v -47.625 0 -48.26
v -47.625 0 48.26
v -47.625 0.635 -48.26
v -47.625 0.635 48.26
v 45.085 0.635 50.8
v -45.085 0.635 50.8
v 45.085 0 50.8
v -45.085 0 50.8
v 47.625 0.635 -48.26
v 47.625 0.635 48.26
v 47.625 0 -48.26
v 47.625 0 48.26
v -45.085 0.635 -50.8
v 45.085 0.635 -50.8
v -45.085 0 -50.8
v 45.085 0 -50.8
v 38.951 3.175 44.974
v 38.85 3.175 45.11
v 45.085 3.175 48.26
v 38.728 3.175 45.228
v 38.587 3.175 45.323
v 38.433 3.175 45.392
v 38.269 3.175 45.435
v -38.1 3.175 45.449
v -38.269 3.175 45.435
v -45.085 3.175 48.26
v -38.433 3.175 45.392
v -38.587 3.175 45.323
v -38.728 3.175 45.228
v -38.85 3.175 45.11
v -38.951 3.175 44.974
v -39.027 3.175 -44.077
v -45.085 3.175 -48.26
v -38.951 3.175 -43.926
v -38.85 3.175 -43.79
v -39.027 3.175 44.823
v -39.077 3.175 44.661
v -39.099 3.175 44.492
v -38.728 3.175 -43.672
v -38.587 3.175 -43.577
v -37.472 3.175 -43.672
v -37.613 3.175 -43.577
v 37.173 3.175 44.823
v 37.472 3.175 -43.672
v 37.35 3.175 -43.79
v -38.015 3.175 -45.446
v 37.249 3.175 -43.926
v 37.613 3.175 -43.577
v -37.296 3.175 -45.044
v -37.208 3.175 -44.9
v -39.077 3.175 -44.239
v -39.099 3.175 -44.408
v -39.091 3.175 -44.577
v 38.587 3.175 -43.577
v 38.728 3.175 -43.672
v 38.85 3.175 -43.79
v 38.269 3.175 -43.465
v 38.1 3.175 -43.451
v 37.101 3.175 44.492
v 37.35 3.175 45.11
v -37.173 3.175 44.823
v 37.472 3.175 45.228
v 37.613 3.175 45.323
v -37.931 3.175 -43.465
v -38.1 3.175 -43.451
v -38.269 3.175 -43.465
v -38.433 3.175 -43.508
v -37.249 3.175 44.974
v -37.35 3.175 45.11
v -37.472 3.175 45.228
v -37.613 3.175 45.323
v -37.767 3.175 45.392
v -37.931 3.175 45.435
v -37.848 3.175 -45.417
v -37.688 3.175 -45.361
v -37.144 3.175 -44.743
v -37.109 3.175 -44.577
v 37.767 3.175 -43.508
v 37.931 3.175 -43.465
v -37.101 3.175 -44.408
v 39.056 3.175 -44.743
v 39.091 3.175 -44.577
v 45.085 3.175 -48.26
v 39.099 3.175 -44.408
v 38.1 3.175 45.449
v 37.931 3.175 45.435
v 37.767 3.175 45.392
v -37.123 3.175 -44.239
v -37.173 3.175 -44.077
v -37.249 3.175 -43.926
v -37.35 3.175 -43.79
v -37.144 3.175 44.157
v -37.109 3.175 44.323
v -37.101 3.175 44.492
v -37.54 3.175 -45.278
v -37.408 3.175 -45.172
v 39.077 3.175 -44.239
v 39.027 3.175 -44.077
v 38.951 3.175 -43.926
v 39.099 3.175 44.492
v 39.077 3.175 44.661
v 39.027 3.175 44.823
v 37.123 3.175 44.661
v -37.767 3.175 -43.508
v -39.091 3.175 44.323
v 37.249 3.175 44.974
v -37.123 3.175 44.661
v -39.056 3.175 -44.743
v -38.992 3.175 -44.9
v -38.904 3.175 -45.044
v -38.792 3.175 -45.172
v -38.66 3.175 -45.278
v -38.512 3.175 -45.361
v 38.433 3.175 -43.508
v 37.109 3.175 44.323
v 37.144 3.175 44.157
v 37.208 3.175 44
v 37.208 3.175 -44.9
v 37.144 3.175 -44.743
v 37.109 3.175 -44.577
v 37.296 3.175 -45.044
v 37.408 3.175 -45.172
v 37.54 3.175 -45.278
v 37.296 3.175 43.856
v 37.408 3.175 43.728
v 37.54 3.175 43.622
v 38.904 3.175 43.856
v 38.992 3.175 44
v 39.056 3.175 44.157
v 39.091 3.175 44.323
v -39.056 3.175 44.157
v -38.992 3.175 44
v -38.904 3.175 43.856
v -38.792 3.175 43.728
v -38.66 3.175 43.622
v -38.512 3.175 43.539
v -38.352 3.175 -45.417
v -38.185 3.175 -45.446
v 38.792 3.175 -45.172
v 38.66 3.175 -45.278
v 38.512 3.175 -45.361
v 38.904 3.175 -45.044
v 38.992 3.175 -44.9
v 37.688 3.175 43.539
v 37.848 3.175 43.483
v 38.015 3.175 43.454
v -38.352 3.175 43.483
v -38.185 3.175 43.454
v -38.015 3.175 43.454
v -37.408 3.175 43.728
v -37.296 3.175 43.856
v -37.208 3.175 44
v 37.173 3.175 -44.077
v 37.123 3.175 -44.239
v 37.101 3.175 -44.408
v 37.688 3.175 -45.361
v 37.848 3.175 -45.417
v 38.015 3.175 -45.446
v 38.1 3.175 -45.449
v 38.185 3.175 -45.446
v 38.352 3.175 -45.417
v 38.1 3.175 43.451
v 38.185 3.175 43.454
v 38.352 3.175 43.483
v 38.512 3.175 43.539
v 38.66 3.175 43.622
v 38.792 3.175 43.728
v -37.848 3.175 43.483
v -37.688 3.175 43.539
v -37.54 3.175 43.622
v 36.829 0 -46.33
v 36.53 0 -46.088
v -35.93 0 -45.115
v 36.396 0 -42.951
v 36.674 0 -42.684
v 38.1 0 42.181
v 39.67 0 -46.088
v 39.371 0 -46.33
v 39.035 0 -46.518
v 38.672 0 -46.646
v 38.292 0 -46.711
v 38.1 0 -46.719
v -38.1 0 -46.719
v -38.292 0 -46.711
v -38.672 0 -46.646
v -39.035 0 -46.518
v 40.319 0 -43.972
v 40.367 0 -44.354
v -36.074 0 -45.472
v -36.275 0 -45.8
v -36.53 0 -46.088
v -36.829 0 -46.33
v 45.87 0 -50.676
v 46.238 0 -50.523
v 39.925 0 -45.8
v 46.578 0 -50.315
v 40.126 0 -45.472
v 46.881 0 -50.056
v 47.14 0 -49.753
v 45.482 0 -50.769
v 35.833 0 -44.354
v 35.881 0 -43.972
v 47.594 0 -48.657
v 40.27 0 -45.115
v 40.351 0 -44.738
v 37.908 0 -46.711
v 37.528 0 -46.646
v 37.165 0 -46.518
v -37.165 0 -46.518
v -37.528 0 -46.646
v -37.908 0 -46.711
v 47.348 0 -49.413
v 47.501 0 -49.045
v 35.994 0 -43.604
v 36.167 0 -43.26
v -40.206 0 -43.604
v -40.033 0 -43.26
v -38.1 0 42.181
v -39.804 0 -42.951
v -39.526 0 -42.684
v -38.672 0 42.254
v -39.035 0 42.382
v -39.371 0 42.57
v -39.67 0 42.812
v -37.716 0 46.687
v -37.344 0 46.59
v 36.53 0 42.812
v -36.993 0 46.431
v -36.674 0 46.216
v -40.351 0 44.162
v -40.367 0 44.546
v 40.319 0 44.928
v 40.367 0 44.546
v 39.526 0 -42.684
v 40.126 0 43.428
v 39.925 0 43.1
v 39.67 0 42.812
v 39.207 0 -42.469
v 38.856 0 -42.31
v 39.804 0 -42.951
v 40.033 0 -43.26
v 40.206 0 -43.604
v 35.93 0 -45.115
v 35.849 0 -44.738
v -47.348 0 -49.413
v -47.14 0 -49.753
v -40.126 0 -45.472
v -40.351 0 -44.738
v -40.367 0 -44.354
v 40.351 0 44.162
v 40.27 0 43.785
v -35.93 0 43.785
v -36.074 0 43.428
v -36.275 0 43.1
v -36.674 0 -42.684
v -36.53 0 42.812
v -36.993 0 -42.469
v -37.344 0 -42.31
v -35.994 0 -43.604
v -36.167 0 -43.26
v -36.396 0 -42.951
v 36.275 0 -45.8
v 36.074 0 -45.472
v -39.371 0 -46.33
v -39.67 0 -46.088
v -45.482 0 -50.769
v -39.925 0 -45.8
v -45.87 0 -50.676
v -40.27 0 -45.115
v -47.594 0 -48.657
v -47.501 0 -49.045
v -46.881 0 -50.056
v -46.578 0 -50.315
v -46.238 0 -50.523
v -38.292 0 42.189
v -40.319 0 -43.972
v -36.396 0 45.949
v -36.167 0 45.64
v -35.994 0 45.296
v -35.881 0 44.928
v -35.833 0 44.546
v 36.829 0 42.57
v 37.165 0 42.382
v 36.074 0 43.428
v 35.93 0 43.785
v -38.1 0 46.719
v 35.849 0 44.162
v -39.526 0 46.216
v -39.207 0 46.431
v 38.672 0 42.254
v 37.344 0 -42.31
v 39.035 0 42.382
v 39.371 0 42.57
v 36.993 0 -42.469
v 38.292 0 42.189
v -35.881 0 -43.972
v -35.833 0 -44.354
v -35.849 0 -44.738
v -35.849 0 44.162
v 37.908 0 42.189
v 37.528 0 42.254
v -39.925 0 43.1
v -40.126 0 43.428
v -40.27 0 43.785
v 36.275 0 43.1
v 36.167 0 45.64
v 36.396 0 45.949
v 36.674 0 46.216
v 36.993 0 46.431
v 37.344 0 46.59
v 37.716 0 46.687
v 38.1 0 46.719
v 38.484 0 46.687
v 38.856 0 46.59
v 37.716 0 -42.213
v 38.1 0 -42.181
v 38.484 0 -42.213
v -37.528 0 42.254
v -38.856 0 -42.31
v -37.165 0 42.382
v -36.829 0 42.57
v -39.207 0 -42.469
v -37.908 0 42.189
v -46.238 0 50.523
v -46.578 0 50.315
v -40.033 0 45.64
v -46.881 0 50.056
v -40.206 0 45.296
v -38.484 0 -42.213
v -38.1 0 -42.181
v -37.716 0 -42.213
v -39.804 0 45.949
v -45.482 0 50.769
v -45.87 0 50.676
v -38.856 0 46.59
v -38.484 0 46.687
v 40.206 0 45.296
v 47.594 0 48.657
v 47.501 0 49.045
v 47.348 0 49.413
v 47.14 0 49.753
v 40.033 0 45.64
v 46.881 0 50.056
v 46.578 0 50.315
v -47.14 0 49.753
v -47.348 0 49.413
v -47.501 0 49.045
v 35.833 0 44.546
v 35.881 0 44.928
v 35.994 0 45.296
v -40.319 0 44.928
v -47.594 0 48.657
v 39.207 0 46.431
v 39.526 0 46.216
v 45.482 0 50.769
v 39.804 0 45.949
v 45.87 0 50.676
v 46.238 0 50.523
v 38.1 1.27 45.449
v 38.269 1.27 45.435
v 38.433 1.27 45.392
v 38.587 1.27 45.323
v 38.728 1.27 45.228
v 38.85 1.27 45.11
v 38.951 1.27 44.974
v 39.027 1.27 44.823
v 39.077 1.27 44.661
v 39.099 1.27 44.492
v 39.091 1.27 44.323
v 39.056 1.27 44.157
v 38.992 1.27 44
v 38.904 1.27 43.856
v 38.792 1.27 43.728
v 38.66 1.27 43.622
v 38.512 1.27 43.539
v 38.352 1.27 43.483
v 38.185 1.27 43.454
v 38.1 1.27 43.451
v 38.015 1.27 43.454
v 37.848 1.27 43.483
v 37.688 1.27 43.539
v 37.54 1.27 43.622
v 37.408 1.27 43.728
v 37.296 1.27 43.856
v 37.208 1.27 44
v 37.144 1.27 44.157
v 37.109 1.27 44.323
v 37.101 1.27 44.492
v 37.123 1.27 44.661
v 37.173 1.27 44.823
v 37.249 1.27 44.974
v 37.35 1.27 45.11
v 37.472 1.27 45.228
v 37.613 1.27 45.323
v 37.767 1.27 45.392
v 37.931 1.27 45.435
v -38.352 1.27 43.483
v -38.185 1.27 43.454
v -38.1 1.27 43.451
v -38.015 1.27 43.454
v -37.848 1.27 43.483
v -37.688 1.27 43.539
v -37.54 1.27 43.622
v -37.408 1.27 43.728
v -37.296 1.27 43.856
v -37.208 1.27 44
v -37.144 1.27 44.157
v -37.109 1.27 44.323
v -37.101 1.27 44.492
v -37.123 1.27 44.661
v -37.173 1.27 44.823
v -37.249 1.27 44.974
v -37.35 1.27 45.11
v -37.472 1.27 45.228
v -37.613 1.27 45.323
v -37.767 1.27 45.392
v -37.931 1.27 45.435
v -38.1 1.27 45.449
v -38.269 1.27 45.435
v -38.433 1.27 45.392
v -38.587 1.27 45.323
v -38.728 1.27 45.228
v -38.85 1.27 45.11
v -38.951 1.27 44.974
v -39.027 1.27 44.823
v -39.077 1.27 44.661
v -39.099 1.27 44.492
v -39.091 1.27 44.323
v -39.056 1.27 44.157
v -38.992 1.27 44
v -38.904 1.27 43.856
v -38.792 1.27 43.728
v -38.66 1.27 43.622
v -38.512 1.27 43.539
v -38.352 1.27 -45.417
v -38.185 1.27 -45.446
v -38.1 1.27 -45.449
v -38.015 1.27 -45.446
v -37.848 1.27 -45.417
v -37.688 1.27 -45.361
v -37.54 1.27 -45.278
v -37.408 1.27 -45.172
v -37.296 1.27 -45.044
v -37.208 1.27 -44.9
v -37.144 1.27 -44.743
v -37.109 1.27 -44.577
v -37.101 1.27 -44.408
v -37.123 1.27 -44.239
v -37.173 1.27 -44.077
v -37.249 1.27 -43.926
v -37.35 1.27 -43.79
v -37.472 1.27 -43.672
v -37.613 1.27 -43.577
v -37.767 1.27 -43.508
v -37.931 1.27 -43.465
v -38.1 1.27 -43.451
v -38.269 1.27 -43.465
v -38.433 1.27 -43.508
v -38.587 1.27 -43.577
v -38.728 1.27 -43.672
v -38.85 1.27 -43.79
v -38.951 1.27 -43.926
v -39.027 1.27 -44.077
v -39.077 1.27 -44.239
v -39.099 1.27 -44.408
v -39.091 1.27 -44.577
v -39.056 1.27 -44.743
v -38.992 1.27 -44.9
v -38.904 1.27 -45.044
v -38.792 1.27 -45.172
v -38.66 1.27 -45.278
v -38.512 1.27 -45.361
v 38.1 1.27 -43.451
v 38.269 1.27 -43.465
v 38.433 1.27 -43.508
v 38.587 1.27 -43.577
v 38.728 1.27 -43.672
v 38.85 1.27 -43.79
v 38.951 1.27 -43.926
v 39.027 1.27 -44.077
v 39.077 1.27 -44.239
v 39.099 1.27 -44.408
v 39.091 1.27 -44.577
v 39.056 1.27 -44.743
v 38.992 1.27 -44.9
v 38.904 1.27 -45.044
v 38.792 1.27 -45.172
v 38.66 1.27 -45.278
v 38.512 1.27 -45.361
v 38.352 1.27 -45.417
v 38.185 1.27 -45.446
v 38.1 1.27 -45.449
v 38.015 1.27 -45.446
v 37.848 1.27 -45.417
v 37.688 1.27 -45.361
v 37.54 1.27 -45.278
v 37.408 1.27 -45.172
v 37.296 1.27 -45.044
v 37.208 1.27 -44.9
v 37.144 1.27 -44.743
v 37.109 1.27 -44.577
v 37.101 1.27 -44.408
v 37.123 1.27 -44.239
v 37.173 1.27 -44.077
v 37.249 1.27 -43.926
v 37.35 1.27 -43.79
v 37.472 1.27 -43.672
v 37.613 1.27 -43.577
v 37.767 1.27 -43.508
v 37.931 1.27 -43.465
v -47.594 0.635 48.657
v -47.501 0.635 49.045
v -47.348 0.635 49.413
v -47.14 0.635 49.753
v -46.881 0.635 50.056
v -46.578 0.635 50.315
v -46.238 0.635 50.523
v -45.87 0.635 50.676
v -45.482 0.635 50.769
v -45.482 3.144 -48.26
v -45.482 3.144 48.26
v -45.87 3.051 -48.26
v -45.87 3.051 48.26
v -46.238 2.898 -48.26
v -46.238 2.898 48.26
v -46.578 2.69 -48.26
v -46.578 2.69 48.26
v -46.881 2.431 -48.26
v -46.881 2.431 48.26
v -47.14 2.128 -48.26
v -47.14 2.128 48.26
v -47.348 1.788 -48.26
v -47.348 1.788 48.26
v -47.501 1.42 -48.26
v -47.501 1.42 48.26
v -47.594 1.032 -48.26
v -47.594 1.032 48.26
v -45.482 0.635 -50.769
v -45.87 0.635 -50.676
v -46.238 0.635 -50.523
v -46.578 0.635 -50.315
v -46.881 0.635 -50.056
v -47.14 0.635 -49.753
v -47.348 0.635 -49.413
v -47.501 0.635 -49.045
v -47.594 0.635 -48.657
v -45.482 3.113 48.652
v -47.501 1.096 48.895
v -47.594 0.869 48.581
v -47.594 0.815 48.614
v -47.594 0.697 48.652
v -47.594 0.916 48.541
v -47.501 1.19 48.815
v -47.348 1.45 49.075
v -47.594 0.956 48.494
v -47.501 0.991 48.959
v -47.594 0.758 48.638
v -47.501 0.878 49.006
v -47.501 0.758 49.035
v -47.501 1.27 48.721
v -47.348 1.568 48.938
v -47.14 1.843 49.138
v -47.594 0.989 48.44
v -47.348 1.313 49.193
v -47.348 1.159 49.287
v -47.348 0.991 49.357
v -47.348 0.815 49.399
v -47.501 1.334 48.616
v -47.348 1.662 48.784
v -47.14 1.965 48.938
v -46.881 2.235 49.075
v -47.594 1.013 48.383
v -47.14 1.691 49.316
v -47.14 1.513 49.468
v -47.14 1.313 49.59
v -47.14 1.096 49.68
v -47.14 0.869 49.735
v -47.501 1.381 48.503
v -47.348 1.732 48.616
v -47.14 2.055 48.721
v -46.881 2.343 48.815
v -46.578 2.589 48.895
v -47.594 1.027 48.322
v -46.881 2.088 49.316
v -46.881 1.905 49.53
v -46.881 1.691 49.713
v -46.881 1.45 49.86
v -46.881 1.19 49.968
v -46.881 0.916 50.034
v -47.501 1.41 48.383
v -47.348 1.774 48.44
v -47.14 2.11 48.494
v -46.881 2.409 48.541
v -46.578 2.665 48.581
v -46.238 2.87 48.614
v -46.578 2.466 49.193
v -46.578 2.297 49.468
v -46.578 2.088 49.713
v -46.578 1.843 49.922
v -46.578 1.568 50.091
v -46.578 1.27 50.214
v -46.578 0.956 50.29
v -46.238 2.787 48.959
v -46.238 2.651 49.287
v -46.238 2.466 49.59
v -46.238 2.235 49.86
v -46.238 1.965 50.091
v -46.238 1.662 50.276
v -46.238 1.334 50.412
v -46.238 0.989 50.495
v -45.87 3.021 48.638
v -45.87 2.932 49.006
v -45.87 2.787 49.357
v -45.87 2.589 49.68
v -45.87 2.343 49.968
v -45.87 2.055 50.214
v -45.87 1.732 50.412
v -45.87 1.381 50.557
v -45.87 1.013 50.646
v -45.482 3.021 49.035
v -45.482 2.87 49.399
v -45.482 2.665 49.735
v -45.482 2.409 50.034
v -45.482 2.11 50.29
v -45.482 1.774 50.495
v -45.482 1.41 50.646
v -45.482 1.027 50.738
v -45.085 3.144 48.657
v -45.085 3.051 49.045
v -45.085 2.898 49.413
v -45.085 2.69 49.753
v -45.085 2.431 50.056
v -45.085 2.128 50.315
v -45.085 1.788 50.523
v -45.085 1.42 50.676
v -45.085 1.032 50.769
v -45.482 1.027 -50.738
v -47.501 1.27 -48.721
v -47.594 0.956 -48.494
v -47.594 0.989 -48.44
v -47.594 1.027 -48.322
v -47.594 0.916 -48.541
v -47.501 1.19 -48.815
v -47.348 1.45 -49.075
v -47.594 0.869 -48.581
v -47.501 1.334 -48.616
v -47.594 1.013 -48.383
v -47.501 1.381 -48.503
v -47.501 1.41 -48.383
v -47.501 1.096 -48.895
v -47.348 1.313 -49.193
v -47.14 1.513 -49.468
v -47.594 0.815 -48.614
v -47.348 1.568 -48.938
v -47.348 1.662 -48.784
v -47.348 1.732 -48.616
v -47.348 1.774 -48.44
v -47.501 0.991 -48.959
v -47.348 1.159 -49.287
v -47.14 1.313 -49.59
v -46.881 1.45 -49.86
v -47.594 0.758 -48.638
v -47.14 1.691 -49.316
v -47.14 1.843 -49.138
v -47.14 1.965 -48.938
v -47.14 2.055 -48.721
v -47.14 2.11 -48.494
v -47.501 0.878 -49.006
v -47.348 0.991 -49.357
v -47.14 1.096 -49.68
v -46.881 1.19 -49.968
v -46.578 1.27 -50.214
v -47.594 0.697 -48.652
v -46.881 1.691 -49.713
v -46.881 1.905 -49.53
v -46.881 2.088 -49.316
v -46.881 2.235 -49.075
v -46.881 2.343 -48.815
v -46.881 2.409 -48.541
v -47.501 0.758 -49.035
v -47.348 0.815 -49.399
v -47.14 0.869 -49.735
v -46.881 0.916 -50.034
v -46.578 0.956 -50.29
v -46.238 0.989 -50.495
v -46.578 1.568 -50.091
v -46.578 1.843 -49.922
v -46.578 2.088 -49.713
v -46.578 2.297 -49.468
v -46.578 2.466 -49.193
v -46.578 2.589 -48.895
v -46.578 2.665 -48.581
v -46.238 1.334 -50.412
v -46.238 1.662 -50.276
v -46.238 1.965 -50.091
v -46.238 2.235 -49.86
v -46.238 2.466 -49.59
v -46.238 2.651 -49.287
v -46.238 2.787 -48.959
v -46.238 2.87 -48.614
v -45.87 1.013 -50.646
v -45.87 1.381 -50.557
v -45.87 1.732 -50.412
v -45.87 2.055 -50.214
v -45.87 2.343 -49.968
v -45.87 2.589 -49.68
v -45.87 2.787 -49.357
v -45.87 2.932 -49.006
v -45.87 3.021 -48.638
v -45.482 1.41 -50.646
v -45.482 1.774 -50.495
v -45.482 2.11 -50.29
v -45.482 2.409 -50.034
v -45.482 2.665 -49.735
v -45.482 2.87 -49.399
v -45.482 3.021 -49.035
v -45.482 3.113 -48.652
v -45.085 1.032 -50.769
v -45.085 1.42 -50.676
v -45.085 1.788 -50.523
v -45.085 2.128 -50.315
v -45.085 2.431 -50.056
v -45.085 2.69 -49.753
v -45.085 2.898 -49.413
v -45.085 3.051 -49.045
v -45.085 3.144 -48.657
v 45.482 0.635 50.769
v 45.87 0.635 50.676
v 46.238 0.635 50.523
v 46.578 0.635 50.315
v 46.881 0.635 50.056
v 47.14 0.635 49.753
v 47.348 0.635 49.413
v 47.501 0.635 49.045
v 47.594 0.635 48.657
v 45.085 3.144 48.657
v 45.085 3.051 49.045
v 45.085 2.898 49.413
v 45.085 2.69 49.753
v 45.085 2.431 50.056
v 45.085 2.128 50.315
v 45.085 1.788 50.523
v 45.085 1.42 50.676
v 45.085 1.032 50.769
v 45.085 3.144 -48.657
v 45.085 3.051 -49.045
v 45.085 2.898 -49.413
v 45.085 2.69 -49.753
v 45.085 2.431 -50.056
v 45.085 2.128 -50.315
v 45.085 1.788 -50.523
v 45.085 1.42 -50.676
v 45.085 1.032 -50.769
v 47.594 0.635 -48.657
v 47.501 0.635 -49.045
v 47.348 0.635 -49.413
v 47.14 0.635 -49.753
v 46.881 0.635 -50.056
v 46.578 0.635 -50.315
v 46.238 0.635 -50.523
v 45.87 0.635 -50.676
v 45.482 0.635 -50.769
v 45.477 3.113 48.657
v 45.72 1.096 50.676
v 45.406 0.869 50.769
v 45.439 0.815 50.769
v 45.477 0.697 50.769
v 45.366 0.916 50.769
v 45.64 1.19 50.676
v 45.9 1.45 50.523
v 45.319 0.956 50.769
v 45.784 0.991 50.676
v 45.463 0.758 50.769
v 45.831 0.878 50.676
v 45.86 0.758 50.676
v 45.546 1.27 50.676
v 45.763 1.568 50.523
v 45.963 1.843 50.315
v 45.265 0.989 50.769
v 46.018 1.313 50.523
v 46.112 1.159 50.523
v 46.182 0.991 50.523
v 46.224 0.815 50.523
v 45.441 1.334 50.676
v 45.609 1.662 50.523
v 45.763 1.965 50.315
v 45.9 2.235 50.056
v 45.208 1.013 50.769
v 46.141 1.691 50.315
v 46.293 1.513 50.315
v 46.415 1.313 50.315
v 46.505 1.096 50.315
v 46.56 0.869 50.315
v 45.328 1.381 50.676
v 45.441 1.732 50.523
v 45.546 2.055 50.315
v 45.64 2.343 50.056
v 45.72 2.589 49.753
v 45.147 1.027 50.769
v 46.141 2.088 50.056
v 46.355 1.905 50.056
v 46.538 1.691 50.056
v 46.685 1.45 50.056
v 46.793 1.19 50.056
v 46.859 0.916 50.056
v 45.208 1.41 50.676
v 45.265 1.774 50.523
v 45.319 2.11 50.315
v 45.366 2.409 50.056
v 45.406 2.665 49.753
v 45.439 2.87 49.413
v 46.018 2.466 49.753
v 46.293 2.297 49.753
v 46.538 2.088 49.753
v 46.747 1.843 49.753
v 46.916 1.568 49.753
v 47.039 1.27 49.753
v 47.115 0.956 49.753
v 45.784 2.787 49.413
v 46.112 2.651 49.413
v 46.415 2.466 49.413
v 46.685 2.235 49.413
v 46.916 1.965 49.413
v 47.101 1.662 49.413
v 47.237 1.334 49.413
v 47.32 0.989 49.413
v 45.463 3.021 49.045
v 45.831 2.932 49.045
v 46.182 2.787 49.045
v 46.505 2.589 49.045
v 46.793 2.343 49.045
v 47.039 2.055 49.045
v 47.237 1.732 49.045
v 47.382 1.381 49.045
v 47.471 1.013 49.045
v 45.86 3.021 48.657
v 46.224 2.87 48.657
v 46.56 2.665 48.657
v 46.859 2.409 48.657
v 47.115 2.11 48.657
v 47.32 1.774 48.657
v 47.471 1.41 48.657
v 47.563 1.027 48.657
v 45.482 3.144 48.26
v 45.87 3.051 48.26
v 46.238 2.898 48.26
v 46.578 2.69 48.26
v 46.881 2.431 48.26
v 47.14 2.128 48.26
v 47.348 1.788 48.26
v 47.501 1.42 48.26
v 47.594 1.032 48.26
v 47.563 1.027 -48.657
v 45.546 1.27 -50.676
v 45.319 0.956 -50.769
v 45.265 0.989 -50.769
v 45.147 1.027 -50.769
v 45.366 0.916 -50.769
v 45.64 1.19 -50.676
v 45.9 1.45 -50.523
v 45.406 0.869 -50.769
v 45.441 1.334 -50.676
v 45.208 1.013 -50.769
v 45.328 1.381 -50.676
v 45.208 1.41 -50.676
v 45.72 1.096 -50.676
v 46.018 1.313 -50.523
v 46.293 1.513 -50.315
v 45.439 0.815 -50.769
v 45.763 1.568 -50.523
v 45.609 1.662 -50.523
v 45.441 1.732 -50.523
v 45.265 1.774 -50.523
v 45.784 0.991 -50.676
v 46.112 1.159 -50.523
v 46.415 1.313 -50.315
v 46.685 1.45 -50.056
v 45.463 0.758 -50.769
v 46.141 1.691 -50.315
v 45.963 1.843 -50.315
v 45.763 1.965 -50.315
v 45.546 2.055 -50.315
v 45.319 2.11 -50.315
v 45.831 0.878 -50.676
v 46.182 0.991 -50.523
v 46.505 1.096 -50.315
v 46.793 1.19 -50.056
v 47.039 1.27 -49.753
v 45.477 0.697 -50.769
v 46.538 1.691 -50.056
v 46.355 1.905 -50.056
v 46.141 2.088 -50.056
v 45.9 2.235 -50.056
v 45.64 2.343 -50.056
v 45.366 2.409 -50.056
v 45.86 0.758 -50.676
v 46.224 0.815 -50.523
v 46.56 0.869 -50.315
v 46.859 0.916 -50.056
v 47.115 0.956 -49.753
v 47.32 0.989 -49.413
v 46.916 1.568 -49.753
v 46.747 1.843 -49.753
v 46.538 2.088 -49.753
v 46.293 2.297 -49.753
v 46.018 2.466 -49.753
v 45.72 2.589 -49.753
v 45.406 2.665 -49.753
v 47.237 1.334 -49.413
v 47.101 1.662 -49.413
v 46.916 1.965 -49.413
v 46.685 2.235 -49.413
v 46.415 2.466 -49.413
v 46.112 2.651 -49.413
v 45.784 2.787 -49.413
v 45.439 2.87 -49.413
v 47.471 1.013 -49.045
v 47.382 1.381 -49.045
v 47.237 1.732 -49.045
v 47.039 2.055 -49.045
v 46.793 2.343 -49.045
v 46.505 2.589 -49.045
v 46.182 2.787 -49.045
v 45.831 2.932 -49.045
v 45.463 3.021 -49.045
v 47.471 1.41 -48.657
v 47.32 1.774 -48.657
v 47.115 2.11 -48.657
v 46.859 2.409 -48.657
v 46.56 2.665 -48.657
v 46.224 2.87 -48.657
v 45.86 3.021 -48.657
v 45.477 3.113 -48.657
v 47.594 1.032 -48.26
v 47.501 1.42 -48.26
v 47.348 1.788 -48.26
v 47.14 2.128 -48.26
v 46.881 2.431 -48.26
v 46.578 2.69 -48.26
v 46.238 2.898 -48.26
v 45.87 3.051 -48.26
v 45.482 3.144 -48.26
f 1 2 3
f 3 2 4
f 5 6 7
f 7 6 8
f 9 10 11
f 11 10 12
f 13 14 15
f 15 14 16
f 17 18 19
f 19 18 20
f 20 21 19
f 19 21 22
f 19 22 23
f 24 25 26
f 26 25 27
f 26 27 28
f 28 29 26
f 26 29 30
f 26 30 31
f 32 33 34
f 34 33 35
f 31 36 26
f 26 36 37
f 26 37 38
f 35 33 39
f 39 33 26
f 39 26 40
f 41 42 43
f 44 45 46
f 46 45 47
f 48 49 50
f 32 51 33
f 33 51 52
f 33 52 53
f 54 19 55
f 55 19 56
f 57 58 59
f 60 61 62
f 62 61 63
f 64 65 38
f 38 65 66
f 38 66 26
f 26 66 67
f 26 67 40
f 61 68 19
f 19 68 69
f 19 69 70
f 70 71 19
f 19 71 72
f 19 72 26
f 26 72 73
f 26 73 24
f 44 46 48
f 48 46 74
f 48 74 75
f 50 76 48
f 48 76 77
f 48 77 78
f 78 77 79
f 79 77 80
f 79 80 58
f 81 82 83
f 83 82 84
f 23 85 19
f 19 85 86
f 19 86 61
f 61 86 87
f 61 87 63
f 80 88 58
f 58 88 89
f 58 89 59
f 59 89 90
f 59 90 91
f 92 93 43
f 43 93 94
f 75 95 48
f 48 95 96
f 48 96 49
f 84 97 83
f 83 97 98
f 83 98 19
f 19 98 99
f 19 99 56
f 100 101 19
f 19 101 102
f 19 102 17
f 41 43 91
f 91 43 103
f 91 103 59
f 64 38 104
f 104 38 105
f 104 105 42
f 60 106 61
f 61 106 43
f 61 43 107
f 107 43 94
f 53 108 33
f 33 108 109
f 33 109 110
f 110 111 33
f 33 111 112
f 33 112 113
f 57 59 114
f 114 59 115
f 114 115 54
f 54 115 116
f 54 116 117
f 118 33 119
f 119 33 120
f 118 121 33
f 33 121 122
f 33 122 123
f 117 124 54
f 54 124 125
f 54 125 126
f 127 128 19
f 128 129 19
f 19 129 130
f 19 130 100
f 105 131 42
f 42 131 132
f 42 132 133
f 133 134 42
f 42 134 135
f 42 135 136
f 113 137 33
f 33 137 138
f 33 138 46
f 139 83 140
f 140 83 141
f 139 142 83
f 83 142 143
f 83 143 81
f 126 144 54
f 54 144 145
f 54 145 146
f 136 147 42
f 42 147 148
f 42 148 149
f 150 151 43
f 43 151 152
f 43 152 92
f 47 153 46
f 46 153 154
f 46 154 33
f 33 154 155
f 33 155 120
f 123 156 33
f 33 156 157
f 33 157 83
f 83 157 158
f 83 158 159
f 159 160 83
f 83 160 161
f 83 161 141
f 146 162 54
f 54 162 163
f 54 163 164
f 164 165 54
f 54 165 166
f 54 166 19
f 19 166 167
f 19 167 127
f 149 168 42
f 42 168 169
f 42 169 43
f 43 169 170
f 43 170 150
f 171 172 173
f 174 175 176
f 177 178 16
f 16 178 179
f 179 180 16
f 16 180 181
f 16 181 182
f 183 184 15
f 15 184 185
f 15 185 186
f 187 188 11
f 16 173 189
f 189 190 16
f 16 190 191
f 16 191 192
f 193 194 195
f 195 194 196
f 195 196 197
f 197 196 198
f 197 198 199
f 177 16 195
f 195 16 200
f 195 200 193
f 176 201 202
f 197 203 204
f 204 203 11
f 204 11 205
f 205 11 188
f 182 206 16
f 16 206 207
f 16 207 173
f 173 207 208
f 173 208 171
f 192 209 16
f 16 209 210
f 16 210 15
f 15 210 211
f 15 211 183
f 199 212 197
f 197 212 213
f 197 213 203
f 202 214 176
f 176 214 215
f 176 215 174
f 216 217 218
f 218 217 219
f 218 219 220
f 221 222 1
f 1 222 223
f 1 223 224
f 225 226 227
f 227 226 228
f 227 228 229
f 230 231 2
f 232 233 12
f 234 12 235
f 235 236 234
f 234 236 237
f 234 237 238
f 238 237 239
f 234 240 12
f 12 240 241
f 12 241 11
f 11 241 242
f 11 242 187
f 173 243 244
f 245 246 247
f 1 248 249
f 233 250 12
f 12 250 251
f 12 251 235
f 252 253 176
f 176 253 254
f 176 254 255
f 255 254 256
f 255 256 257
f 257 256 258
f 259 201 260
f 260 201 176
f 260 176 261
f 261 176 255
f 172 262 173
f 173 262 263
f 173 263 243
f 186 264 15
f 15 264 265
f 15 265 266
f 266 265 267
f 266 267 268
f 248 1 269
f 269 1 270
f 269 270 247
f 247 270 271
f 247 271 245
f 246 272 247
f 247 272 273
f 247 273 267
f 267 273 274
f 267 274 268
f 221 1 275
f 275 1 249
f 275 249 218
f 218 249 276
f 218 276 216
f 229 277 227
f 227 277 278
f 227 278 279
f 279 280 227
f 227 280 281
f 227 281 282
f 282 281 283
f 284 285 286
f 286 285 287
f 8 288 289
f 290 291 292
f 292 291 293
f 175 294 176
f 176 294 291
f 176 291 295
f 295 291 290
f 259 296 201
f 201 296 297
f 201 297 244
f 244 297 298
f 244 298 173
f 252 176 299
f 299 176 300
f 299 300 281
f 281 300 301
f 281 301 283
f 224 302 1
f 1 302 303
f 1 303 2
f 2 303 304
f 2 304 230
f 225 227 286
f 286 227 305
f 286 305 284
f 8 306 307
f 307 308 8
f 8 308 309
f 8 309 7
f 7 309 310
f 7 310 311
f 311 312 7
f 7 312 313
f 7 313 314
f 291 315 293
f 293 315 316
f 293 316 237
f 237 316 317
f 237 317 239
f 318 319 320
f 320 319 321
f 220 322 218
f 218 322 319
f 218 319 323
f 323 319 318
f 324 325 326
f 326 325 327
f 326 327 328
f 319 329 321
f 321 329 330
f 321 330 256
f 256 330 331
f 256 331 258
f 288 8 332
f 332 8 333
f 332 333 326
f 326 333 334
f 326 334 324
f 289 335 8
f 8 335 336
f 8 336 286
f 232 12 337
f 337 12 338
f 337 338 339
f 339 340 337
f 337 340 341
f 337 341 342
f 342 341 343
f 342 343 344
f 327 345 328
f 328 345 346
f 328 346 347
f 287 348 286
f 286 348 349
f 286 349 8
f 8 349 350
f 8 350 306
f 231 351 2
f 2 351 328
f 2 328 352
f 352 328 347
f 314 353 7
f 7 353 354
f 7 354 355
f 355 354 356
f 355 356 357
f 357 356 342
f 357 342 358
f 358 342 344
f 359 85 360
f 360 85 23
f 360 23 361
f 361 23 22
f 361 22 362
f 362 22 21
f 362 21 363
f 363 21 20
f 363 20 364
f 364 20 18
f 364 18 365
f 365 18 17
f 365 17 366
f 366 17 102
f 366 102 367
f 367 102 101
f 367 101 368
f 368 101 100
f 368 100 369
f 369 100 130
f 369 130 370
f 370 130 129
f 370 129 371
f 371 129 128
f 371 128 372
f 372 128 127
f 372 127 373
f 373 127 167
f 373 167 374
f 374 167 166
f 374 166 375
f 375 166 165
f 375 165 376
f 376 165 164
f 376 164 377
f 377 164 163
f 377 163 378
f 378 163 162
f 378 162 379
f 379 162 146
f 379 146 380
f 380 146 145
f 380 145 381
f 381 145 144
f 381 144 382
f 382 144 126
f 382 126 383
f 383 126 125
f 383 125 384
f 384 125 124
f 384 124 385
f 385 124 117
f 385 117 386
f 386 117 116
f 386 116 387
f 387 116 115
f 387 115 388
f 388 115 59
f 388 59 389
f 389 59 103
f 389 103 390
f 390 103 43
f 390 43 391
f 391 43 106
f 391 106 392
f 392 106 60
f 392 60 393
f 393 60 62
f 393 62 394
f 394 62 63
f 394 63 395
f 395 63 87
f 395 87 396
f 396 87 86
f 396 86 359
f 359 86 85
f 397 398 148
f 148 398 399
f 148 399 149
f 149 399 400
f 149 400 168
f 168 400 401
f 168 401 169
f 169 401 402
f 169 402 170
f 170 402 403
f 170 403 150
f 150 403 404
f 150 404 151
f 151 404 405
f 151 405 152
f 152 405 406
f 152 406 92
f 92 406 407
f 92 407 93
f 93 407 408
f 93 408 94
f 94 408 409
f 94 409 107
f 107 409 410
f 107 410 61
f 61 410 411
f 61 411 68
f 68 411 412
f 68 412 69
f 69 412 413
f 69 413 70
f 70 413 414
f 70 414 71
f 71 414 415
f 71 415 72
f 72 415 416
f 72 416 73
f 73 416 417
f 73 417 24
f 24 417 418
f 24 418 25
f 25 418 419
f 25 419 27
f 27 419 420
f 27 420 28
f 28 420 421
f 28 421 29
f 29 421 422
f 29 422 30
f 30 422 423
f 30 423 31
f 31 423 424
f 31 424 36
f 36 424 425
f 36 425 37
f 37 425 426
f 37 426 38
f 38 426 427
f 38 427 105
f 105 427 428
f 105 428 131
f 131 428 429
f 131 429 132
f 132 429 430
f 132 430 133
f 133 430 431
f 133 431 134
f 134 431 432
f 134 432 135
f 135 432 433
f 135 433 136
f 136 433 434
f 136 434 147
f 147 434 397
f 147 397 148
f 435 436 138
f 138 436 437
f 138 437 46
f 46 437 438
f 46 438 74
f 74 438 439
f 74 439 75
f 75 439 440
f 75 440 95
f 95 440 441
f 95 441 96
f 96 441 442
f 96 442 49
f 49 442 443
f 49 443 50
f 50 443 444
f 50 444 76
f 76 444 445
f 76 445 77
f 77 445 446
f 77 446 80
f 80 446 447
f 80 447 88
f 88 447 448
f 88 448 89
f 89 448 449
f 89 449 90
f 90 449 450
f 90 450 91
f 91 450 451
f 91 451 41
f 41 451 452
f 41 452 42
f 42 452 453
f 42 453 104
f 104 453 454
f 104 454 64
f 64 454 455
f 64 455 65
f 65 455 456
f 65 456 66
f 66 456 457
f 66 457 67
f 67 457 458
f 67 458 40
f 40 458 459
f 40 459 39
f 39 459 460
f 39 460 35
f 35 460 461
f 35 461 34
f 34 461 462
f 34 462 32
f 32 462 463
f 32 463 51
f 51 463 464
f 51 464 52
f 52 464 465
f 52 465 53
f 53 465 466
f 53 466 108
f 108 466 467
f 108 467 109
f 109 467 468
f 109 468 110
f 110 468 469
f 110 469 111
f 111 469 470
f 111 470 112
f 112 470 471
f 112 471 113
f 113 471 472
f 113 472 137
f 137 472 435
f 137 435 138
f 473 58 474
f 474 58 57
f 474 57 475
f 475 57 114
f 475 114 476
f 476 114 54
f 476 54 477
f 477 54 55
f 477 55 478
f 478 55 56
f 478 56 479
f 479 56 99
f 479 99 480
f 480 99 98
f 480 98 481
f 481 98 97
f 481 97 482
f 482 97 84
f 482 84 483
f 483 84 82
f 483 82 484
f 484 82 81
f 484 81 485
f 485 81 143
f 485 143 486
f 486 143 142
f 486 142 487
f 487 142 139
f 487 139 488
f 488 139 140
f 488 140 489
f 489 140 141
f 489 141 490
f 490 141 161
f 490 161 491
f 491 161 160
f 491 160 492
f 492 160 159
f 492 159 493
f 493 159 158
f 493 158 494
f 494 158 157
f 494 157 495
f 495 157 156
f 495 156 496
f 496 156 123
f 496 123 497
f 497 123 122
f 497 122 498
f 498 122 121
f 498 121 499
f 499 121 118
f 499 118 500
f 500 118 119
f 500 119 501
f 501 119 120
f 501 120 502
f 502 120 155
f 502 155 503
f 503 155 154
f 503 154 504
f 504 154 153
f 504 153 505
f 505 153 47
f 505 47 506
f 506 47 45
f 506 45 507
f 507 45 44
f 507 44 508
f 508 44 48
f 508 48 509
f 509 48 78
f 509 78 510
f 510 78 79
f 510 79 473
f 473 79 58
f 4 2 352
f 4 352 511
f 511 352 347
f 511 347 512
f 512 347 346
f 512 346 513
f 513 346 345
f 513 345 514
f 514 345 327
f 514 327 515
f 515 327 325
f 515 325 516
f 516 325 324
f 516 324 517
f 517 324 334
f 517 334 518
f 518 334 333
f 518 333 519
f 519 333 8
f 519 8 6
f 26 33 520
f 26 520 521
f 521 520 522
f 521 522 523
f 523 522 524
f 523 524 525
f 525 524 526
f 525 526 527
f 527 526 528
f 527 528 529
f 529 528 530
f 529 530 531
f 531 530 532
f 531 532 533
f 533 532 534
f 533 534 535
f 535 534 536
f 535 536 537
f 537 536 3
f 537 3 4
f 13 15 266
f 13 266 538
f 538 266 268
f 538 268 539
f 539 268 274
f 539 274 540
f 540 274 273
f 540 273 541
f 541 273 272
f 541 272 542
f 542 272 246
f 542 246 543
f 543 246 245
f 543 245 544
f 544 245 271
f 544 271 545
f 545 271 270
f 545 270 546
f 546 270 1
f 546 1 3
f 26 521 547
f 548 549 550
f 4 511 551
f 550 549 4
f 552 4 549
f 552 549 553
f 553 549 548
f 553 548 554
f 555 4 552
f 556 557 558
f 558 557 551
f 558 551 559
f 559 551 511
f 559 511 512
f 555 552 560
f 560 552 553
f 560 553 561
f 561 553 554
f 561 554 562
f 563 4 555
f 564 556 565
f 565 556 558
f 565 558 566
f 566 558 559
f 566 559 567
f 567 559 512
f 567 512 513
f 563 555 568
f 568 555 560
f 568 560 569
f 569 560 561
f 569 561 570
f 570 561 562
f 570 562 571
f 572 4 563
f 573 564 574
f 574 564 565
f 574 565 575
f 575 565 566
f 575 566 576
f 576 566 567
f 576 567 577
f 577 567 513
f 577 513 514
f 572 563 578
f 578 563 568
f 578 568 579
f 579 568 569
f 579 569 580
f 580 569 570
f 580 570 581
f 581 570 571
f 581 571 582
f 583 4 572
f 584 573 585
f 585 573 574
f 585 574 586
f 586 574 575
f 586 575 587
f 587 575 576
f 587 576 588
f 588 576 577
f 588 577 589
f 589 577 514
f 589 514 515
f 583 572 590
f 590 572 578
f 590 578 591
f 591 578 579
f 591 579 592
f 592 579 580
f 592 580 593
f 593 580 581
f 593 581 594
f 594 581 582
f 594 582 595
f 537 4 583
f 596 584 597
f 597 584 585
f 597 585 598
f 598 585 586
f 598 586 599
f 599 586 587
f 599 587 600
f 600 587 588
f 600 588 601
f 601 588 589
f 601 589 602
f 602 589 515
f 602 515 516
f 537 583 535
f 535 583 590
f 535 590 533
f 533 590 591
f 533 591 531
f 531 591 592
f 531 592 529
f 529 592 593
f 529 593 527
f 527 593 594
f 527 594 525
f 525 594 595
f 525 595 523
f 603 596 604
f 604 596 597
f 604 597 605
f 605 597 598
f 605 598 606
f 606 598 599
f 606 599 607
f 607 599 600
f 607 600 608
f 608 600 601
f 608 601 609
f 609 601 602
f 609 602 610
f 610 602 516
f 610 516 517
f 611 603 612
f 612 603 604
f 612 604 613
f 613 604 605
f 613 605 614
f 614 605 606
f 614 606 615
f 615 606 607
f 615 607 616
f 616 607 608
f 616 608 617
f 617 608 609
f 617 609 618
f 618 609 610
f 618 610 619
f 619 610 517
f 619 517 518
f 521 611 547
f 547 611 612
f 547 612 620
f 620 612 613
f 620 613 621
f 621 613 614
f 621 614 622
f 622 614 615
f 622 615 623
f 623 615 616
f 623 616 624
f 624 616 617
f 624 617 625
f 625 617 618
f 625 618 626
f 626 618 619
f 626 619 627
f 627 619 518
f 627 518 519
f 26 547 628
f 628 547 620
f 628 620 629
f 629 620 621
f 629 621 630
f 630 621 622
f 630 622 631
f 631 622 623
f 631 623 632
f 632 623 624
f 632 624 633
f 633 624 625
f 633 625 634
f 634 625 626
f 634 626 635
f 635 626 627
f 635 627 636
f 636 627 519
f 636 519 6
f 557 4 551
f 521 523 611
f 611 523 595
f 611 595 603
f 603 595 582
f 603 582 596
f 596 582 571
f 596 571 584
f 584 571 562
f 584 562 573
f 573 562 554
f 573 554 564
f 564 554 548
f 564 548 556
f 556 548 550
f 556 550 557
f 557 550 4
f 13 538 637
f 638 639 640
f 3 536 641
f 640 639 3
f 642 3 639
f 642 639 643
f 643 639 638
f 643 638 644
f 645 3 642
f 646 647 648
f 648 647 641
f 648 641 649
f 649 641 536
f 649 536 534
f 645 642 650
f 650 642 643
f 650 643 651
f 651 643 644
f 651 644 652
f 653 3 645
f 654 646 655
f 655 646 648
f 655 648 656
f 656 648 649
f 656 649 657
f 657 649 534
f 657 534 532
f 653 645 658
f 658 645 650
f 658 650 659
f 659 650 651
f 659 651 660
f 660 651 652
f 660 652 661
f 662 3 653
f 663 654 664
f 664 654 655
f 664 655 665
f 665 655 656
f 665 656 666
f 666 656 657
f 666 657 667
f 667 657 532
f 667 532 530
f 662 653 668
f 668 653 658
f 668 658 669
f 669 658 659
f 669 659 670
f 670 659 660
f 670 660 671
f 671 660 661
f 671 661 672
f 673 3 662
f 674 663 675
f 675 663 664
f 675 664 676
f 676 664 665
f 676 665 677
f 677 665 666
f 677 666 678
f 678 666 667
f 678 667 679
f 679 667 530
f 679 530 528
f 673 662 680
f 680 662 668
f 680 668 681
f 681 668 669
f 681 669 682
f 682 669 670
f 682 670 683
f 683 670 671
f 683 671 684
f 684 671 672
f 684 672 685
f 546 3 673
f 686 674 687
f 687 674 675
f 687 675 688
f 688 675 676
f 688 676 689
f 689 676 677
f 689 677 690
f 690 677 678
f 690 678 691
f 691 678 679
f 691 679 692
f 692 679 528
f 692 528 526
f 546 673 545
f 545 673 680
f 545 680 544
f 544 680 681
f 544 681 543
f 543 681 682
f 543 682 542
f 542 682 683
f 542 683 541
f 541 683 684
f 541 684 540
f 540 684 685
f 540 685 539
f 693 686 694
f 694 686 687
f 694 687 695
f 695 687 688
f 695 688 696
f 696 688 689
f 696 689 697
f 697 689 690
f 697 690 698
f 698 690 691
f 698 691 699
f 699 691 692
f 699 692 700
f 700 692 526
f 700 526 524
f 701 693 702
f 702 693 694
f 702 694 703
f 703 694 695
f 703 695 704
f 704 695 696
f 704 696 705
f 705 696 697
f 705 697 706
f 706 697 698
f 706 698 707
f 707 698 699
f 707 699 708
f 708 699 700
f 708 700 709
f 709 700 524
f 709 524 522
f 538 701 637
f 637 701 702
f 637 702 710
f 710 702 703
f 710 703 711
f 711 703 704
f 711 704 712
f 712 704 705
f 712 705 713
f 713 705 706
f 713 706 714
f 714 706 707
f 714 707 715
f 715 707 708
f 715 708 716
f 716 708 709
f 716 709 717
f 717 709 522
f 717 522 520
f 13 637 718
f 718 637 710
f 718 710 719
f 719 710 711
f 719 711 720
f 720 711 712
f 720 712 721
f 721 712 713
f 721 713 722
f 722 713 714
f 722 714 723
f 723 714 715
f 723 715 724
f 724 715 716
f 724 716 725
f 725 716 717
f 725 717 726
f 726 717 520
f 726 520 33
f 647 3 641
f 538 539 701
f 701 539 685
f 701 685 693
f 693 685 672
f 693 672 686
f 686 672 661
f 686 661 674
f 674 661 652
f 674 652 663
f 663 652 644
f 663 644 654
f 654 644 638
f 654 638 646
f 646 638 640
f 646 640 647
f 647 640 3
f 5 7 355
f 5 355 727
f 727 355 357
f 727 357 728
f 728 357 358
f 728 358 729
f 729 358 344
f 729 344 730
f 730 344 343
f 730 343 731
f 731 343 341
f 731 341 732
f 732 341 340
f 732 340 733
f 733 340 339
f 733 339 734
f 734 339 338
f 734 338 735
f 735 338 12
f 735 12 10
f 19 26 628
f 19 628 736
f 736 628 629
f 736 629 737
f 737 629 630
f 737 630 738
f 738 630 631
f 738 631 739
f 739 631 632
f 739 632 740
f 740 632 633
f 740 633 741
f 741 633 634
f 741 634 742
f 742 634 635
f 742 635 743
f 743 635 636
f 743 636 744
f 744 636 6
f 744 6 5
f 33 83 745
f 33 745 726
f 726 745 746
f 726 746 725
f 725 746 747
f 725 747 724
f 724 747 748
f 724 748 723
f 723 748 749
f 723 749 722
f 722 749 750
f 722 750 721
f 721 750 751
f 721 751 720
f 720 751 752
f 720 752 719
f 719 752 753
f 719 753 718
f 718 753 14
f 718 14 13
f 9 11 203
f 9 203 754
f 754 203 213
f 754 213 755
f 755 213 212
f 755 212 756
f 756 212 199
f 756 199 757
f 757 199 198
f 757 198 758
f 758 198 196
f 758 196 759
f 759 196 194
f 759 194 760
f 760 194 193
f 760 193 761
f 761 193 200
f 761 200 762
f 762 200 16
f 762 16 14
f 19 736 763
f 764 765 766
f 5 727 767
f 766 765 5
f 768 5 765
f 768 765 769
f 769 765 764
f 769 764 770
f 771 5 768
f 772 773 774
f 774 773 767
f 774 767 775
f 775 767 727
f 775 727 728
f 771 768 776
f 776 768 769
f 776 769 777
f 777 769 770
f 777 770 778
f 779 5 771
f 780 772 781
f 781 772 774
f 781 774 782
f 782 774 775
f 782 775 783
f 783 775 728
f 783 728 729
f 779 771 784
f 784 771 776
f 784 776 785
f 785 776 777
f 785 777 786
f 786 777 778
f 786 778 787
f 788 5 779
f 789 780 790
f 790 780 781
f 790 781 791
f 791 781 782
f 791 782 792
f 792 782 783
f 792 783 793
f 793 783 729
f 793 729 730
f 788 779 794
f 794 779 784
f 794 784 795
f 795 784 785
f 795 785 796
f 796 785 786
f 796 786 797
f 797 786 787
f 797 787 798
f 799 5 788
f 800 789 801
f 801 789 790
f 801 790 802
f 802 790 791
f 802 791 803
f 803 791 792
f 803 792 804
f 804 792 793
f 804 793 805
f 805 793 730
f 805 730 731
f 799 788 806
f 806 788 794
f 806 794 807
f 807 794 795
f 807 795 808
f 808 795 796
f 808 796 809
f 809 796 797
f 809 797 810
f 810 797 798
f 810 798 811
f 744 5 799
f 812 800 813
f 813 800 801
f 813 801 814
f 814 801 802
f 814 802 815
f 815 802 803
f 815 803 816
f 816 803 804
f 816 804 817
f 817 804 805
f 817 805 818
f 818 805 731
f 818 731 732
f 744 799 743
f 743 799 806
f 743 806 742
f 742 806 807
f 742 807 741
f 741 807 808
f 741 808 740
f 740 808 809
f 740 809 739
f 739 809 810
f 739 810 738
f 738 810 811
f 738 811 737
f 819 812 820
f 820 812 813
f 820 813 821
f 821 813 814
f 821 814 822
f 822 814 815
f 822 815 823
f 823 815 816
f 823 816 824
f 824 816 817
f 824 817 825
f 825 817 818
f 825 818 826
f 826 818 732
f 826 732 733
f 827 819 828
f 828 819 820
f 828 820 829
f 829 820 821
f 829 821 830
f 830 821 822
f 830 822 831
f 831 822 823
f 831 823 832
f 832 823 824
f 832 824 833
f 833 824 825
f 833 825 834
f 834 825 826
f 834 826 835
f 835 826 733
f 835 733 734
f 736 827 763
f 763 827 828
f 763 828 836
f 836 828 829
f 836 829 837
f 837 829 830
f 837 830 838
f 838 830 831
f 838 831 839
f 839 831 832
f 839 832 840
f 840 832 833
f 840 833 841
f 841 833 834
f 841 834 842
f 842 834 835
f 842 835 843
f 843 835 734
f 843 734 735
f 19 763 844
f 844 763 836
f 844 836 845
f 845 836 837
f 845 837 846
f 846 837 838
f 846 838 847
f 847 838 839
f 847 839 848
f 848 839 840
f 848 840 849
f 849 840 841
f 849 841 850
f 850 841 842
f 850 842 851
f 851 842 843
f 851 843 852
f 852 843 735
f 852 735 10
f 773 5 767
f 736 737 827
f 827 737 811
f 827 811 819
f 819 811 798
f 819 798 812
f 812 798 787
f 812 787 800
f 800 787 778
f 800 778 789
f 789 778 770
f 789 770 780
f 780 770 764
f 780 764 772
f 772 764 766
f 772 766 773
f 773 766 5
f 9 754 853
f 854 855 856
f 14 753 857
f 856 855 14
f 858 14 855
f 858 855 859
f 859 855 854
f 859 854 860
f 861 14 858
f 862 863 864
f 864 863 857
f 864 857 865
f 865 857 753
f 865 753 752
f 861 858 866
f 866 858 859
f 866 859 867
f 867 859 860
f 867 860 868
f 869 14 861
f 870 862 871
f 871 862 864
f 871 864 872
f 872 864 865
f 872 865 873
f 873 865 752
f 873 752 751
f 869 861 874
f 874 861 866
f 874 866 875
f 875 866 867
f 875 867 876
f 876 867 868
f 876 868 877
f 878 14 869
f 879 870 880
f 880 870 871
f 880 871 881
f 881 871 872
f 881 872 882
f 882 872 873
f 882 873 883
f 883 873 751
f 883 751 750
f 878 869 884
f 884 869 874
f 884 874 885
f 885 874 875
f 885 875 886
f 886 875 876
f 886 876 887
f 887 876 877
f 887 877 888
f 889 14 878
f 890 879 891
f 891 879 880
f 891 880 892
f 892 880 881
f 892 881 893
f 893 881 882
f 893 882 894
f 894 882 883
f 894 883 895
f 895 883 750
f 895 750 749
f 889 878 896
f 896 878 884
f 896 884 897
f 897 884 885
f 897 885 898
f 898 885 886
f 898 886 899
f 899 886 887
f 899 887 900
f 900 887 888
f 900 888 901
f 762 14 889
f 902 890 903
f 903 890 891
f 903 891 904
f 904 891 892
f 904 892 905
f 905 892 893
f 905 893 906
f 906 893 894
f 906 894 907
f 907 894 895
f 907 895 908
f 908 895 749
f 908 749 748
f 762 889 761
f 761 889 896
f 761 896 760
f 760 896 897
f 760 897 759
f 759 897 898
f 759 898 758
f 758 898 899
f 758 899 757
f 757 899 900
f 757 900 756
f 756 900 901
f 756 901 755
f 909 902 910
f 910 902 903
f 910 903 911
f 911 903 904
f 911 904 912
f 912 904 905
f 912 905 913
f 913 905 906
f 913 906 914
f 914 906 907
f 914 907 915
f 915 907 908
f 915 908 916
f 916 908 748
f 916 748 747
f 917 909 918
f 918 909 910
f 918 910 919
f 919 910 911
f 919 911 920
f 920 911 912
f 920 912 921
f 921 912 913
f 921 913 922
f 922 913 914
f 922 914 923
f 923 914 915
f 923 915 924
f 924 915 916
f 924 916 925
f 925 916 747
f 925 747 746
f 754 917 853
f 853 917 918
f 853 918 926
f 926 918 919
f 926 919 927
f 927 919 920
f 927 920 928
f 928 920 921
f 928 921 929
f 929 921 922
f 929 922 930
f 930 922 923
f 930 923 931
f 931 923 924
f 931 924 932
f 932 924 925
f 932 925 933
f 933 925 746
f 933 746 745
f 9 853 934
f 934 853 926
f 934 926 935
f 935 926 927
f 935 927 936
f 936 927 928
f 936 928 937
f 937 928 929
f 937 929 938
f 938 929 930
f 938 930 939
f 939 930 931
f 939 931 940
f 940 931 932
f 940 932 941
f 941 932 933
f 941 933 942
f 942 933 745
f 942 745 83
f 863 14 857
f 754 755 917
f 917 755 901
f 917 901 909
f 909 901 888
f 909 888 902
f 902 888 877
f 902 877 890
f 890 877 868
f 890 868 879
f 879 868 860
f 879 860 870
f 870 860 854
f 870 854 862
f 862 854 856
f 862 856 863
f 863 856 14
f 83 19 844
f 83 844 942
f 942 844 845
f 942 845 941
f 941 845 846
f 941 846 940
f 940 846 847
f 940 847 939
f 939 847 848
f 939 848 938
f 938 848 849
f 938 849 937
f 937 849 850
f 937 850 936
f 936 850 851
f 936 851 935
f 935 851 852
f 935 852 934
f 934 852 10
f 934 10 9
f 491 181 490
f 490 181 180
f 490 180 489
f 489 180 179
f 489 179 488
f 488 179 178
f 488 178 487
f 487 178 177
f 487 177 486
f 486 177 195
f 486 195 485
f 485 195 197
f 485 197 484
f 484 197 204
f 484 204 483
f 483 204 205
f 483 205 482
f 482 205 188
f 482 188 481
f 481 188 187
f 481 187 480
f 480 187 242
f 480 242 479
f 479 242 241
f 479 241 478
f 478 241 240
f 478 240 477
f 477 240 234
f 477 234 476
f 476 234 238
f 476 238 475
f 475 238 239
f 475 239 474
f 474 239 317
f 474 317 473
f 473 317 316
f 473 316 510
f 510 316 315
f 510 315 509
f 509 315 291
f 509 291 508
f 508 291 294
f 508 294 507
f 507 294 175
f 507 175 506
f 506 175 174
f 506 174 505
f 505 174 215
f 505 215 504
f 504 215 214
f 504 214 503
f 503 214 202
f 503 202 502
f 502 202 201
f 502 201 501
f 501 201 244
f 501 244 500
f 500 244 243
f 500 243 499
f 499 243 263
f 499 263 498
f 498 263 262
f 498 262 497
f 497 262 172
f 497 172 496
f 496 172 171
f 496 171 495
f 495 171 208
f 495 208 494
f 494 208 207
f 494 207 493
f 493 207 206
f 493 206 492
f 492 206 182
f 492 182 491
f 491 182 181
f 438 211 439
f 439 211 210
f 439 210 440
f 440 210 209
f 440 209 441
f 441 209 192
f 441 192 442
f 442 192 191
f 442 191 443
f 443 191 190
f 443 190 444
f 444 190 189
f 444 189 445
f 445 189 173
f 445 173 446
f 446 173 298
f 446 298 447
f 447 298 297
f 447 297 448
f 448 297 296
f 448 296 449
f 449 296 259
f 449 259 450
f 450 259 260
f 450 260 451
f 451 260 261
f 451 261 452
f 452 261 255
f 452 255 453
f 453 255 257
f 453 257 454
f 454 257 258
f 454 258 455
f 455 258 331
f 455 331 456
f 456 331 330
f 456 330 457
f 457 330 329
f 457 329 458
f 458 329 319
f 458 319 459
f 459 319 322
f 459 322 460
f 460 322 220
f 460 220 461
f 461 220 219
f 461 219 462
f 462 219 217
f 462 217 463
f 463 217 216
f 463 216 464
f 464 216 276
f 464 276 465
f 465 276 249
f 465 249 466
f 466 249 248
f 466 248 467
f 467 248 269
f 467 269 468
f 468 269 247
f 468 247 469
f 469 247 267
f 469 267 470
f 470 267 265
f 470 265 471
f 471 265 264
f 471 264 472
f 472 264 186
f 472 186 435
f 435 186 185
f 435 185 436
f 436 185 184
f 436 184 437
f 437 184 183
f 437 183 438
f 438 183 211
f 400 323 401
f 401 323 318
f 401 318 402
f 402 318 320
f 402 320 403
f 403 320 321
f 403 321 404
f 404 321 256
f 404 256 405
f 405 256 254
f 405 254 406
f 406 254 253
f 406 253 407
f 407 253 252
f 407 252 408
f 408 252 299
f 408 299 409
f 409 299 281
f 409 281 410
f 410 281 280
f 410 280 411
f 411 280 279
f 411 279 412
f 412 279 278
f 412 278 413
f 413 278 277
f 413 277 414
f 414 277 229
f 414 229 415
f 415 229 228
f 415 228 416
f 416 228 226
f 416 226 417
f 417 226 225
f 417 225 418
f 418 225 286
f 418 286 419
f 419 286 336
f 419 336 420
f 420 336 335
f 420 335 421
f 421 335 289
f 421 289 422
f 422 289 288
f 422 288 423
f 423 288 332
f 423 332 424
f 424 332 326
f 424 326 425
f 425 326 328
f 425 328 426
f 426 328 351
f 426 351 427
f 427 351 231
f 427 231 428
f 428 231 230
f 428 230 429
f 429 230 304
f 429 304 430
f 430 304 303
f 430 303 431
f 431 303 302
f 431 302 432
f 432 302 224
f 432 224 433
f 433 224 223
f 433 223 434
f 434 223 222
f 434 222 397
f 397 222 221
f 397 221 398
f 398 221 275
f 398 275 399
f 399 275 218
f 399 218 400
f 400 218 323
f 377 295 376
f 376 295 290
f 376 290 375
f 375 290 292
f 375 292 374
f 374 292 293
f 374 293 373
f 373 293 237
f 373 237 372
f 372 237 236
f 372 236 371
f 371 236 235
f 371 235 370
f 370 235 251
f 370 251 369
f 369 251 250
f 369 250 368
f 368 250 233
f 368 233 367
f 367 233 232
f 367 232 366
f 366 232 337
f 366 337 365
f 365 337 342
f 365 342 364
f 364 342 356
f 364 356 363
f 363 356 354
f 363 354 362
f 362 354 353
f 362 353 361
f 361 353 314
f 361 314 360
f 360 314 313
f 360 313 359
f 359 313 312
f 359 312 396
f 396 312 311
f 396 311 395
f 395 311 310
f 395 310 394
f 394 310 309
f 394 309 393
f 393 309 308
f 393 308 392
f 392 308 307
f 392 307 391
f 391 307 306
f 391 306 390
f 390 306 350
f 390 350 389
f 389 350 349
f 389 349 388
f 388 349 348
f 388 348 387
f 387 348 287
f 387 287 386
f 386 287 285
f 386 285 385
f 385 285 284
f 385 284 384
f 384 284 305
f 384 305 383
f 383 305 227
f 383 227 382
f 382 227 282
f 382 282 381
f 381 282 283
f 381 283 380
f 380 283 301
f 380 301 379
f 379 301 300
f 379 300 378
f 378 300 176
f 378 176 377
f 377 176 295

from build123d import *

# Parameters (mm, degrees)
SKETCH1_W           = 95.25
SKETCH1_H           = 101.6
BOSS_EXTRUDE1_DEPTH = 3.175
SKETCH5_R           = 0.99949
CUT_EXTRUDE3_DEPTH  = 3.175
CIRPATTERN3_COUNT   = 2
FILLET1_R           = 2.54
CHAMFER1_SIZE       = 1.27


with BuildPart() as part:
    # Sketch1 → Boss-Extrude1 (new body)
    with BuildSketch(Plane(origin=(0, 0, 0), x_dir=(1, 0, 0), z_dir=(0, 1, 0))):
        Rectangle(SKETCH1_W, SKETCH1_H)
    extrude(amount=BOSS_EXTRUDE1_DEPTH)

    # Sketch5 → Cut-Extrude3 (cut)
    with BuildSketch(Plane(origin=(0, 3.175, 0), x_dir=(1, 0, 0), z_dir=(0, 1, 0))):
        with Locations((-38.1, -44.45)):
            Circle(SKETCH5_R)
        with Locations((38.1, -44.45)):
            Circle(SKETCH5_R)
    cut_extrude3 = extrude(amount=-CUT_EXTRUDE3_DEPTH, mode=Mode.SUBTRACT)

    # CirPattern3: Cut-Extrude3 ×2 about axis
    cirpattern3_axis = Axis((0, 3.33375, 0), (0, -1, 0))
    for i in range(1, CIRPATTERN3_COUNT):
        add(cut_extrude3.rotate(cirpattern3_axis, i * 360 / CIRPATTERN3_COUNT), mode=Mode.SUBTRACT)

    # Fillet1
    fillet1_edges = [part.edges().sort_by_distance(p)[0] for p in [
        (47.625, 3.175, 0),
        (0, 3.175, 50.8),
        (-47.625, 3.175, 0),
        (0, 3.175, -50.8),
        (-47.625, 1.5875, -50.8),
        (47.625, 1.5875, -50.8),
        (47.625, 1.5875, 50.8),
        (-47.625, 1.5875, 50.8),
    ]]
    fillet(fillet1_edges, radius=FILLET1_R)

    # Chamfer1
    chamfer1_edges = [part.edges().sort_by_distance(p)[0] for p in [
        (39.09949, 0, -44.45),
        (-37.10051, 0, -44.45),
        (-39.09949, 0, 44.45),
        (37.10051, 0, 44.45),
    ]]
    chamfer(chamfer1_edges, length=CHAMFER1_SIZE)


solid = part.part
